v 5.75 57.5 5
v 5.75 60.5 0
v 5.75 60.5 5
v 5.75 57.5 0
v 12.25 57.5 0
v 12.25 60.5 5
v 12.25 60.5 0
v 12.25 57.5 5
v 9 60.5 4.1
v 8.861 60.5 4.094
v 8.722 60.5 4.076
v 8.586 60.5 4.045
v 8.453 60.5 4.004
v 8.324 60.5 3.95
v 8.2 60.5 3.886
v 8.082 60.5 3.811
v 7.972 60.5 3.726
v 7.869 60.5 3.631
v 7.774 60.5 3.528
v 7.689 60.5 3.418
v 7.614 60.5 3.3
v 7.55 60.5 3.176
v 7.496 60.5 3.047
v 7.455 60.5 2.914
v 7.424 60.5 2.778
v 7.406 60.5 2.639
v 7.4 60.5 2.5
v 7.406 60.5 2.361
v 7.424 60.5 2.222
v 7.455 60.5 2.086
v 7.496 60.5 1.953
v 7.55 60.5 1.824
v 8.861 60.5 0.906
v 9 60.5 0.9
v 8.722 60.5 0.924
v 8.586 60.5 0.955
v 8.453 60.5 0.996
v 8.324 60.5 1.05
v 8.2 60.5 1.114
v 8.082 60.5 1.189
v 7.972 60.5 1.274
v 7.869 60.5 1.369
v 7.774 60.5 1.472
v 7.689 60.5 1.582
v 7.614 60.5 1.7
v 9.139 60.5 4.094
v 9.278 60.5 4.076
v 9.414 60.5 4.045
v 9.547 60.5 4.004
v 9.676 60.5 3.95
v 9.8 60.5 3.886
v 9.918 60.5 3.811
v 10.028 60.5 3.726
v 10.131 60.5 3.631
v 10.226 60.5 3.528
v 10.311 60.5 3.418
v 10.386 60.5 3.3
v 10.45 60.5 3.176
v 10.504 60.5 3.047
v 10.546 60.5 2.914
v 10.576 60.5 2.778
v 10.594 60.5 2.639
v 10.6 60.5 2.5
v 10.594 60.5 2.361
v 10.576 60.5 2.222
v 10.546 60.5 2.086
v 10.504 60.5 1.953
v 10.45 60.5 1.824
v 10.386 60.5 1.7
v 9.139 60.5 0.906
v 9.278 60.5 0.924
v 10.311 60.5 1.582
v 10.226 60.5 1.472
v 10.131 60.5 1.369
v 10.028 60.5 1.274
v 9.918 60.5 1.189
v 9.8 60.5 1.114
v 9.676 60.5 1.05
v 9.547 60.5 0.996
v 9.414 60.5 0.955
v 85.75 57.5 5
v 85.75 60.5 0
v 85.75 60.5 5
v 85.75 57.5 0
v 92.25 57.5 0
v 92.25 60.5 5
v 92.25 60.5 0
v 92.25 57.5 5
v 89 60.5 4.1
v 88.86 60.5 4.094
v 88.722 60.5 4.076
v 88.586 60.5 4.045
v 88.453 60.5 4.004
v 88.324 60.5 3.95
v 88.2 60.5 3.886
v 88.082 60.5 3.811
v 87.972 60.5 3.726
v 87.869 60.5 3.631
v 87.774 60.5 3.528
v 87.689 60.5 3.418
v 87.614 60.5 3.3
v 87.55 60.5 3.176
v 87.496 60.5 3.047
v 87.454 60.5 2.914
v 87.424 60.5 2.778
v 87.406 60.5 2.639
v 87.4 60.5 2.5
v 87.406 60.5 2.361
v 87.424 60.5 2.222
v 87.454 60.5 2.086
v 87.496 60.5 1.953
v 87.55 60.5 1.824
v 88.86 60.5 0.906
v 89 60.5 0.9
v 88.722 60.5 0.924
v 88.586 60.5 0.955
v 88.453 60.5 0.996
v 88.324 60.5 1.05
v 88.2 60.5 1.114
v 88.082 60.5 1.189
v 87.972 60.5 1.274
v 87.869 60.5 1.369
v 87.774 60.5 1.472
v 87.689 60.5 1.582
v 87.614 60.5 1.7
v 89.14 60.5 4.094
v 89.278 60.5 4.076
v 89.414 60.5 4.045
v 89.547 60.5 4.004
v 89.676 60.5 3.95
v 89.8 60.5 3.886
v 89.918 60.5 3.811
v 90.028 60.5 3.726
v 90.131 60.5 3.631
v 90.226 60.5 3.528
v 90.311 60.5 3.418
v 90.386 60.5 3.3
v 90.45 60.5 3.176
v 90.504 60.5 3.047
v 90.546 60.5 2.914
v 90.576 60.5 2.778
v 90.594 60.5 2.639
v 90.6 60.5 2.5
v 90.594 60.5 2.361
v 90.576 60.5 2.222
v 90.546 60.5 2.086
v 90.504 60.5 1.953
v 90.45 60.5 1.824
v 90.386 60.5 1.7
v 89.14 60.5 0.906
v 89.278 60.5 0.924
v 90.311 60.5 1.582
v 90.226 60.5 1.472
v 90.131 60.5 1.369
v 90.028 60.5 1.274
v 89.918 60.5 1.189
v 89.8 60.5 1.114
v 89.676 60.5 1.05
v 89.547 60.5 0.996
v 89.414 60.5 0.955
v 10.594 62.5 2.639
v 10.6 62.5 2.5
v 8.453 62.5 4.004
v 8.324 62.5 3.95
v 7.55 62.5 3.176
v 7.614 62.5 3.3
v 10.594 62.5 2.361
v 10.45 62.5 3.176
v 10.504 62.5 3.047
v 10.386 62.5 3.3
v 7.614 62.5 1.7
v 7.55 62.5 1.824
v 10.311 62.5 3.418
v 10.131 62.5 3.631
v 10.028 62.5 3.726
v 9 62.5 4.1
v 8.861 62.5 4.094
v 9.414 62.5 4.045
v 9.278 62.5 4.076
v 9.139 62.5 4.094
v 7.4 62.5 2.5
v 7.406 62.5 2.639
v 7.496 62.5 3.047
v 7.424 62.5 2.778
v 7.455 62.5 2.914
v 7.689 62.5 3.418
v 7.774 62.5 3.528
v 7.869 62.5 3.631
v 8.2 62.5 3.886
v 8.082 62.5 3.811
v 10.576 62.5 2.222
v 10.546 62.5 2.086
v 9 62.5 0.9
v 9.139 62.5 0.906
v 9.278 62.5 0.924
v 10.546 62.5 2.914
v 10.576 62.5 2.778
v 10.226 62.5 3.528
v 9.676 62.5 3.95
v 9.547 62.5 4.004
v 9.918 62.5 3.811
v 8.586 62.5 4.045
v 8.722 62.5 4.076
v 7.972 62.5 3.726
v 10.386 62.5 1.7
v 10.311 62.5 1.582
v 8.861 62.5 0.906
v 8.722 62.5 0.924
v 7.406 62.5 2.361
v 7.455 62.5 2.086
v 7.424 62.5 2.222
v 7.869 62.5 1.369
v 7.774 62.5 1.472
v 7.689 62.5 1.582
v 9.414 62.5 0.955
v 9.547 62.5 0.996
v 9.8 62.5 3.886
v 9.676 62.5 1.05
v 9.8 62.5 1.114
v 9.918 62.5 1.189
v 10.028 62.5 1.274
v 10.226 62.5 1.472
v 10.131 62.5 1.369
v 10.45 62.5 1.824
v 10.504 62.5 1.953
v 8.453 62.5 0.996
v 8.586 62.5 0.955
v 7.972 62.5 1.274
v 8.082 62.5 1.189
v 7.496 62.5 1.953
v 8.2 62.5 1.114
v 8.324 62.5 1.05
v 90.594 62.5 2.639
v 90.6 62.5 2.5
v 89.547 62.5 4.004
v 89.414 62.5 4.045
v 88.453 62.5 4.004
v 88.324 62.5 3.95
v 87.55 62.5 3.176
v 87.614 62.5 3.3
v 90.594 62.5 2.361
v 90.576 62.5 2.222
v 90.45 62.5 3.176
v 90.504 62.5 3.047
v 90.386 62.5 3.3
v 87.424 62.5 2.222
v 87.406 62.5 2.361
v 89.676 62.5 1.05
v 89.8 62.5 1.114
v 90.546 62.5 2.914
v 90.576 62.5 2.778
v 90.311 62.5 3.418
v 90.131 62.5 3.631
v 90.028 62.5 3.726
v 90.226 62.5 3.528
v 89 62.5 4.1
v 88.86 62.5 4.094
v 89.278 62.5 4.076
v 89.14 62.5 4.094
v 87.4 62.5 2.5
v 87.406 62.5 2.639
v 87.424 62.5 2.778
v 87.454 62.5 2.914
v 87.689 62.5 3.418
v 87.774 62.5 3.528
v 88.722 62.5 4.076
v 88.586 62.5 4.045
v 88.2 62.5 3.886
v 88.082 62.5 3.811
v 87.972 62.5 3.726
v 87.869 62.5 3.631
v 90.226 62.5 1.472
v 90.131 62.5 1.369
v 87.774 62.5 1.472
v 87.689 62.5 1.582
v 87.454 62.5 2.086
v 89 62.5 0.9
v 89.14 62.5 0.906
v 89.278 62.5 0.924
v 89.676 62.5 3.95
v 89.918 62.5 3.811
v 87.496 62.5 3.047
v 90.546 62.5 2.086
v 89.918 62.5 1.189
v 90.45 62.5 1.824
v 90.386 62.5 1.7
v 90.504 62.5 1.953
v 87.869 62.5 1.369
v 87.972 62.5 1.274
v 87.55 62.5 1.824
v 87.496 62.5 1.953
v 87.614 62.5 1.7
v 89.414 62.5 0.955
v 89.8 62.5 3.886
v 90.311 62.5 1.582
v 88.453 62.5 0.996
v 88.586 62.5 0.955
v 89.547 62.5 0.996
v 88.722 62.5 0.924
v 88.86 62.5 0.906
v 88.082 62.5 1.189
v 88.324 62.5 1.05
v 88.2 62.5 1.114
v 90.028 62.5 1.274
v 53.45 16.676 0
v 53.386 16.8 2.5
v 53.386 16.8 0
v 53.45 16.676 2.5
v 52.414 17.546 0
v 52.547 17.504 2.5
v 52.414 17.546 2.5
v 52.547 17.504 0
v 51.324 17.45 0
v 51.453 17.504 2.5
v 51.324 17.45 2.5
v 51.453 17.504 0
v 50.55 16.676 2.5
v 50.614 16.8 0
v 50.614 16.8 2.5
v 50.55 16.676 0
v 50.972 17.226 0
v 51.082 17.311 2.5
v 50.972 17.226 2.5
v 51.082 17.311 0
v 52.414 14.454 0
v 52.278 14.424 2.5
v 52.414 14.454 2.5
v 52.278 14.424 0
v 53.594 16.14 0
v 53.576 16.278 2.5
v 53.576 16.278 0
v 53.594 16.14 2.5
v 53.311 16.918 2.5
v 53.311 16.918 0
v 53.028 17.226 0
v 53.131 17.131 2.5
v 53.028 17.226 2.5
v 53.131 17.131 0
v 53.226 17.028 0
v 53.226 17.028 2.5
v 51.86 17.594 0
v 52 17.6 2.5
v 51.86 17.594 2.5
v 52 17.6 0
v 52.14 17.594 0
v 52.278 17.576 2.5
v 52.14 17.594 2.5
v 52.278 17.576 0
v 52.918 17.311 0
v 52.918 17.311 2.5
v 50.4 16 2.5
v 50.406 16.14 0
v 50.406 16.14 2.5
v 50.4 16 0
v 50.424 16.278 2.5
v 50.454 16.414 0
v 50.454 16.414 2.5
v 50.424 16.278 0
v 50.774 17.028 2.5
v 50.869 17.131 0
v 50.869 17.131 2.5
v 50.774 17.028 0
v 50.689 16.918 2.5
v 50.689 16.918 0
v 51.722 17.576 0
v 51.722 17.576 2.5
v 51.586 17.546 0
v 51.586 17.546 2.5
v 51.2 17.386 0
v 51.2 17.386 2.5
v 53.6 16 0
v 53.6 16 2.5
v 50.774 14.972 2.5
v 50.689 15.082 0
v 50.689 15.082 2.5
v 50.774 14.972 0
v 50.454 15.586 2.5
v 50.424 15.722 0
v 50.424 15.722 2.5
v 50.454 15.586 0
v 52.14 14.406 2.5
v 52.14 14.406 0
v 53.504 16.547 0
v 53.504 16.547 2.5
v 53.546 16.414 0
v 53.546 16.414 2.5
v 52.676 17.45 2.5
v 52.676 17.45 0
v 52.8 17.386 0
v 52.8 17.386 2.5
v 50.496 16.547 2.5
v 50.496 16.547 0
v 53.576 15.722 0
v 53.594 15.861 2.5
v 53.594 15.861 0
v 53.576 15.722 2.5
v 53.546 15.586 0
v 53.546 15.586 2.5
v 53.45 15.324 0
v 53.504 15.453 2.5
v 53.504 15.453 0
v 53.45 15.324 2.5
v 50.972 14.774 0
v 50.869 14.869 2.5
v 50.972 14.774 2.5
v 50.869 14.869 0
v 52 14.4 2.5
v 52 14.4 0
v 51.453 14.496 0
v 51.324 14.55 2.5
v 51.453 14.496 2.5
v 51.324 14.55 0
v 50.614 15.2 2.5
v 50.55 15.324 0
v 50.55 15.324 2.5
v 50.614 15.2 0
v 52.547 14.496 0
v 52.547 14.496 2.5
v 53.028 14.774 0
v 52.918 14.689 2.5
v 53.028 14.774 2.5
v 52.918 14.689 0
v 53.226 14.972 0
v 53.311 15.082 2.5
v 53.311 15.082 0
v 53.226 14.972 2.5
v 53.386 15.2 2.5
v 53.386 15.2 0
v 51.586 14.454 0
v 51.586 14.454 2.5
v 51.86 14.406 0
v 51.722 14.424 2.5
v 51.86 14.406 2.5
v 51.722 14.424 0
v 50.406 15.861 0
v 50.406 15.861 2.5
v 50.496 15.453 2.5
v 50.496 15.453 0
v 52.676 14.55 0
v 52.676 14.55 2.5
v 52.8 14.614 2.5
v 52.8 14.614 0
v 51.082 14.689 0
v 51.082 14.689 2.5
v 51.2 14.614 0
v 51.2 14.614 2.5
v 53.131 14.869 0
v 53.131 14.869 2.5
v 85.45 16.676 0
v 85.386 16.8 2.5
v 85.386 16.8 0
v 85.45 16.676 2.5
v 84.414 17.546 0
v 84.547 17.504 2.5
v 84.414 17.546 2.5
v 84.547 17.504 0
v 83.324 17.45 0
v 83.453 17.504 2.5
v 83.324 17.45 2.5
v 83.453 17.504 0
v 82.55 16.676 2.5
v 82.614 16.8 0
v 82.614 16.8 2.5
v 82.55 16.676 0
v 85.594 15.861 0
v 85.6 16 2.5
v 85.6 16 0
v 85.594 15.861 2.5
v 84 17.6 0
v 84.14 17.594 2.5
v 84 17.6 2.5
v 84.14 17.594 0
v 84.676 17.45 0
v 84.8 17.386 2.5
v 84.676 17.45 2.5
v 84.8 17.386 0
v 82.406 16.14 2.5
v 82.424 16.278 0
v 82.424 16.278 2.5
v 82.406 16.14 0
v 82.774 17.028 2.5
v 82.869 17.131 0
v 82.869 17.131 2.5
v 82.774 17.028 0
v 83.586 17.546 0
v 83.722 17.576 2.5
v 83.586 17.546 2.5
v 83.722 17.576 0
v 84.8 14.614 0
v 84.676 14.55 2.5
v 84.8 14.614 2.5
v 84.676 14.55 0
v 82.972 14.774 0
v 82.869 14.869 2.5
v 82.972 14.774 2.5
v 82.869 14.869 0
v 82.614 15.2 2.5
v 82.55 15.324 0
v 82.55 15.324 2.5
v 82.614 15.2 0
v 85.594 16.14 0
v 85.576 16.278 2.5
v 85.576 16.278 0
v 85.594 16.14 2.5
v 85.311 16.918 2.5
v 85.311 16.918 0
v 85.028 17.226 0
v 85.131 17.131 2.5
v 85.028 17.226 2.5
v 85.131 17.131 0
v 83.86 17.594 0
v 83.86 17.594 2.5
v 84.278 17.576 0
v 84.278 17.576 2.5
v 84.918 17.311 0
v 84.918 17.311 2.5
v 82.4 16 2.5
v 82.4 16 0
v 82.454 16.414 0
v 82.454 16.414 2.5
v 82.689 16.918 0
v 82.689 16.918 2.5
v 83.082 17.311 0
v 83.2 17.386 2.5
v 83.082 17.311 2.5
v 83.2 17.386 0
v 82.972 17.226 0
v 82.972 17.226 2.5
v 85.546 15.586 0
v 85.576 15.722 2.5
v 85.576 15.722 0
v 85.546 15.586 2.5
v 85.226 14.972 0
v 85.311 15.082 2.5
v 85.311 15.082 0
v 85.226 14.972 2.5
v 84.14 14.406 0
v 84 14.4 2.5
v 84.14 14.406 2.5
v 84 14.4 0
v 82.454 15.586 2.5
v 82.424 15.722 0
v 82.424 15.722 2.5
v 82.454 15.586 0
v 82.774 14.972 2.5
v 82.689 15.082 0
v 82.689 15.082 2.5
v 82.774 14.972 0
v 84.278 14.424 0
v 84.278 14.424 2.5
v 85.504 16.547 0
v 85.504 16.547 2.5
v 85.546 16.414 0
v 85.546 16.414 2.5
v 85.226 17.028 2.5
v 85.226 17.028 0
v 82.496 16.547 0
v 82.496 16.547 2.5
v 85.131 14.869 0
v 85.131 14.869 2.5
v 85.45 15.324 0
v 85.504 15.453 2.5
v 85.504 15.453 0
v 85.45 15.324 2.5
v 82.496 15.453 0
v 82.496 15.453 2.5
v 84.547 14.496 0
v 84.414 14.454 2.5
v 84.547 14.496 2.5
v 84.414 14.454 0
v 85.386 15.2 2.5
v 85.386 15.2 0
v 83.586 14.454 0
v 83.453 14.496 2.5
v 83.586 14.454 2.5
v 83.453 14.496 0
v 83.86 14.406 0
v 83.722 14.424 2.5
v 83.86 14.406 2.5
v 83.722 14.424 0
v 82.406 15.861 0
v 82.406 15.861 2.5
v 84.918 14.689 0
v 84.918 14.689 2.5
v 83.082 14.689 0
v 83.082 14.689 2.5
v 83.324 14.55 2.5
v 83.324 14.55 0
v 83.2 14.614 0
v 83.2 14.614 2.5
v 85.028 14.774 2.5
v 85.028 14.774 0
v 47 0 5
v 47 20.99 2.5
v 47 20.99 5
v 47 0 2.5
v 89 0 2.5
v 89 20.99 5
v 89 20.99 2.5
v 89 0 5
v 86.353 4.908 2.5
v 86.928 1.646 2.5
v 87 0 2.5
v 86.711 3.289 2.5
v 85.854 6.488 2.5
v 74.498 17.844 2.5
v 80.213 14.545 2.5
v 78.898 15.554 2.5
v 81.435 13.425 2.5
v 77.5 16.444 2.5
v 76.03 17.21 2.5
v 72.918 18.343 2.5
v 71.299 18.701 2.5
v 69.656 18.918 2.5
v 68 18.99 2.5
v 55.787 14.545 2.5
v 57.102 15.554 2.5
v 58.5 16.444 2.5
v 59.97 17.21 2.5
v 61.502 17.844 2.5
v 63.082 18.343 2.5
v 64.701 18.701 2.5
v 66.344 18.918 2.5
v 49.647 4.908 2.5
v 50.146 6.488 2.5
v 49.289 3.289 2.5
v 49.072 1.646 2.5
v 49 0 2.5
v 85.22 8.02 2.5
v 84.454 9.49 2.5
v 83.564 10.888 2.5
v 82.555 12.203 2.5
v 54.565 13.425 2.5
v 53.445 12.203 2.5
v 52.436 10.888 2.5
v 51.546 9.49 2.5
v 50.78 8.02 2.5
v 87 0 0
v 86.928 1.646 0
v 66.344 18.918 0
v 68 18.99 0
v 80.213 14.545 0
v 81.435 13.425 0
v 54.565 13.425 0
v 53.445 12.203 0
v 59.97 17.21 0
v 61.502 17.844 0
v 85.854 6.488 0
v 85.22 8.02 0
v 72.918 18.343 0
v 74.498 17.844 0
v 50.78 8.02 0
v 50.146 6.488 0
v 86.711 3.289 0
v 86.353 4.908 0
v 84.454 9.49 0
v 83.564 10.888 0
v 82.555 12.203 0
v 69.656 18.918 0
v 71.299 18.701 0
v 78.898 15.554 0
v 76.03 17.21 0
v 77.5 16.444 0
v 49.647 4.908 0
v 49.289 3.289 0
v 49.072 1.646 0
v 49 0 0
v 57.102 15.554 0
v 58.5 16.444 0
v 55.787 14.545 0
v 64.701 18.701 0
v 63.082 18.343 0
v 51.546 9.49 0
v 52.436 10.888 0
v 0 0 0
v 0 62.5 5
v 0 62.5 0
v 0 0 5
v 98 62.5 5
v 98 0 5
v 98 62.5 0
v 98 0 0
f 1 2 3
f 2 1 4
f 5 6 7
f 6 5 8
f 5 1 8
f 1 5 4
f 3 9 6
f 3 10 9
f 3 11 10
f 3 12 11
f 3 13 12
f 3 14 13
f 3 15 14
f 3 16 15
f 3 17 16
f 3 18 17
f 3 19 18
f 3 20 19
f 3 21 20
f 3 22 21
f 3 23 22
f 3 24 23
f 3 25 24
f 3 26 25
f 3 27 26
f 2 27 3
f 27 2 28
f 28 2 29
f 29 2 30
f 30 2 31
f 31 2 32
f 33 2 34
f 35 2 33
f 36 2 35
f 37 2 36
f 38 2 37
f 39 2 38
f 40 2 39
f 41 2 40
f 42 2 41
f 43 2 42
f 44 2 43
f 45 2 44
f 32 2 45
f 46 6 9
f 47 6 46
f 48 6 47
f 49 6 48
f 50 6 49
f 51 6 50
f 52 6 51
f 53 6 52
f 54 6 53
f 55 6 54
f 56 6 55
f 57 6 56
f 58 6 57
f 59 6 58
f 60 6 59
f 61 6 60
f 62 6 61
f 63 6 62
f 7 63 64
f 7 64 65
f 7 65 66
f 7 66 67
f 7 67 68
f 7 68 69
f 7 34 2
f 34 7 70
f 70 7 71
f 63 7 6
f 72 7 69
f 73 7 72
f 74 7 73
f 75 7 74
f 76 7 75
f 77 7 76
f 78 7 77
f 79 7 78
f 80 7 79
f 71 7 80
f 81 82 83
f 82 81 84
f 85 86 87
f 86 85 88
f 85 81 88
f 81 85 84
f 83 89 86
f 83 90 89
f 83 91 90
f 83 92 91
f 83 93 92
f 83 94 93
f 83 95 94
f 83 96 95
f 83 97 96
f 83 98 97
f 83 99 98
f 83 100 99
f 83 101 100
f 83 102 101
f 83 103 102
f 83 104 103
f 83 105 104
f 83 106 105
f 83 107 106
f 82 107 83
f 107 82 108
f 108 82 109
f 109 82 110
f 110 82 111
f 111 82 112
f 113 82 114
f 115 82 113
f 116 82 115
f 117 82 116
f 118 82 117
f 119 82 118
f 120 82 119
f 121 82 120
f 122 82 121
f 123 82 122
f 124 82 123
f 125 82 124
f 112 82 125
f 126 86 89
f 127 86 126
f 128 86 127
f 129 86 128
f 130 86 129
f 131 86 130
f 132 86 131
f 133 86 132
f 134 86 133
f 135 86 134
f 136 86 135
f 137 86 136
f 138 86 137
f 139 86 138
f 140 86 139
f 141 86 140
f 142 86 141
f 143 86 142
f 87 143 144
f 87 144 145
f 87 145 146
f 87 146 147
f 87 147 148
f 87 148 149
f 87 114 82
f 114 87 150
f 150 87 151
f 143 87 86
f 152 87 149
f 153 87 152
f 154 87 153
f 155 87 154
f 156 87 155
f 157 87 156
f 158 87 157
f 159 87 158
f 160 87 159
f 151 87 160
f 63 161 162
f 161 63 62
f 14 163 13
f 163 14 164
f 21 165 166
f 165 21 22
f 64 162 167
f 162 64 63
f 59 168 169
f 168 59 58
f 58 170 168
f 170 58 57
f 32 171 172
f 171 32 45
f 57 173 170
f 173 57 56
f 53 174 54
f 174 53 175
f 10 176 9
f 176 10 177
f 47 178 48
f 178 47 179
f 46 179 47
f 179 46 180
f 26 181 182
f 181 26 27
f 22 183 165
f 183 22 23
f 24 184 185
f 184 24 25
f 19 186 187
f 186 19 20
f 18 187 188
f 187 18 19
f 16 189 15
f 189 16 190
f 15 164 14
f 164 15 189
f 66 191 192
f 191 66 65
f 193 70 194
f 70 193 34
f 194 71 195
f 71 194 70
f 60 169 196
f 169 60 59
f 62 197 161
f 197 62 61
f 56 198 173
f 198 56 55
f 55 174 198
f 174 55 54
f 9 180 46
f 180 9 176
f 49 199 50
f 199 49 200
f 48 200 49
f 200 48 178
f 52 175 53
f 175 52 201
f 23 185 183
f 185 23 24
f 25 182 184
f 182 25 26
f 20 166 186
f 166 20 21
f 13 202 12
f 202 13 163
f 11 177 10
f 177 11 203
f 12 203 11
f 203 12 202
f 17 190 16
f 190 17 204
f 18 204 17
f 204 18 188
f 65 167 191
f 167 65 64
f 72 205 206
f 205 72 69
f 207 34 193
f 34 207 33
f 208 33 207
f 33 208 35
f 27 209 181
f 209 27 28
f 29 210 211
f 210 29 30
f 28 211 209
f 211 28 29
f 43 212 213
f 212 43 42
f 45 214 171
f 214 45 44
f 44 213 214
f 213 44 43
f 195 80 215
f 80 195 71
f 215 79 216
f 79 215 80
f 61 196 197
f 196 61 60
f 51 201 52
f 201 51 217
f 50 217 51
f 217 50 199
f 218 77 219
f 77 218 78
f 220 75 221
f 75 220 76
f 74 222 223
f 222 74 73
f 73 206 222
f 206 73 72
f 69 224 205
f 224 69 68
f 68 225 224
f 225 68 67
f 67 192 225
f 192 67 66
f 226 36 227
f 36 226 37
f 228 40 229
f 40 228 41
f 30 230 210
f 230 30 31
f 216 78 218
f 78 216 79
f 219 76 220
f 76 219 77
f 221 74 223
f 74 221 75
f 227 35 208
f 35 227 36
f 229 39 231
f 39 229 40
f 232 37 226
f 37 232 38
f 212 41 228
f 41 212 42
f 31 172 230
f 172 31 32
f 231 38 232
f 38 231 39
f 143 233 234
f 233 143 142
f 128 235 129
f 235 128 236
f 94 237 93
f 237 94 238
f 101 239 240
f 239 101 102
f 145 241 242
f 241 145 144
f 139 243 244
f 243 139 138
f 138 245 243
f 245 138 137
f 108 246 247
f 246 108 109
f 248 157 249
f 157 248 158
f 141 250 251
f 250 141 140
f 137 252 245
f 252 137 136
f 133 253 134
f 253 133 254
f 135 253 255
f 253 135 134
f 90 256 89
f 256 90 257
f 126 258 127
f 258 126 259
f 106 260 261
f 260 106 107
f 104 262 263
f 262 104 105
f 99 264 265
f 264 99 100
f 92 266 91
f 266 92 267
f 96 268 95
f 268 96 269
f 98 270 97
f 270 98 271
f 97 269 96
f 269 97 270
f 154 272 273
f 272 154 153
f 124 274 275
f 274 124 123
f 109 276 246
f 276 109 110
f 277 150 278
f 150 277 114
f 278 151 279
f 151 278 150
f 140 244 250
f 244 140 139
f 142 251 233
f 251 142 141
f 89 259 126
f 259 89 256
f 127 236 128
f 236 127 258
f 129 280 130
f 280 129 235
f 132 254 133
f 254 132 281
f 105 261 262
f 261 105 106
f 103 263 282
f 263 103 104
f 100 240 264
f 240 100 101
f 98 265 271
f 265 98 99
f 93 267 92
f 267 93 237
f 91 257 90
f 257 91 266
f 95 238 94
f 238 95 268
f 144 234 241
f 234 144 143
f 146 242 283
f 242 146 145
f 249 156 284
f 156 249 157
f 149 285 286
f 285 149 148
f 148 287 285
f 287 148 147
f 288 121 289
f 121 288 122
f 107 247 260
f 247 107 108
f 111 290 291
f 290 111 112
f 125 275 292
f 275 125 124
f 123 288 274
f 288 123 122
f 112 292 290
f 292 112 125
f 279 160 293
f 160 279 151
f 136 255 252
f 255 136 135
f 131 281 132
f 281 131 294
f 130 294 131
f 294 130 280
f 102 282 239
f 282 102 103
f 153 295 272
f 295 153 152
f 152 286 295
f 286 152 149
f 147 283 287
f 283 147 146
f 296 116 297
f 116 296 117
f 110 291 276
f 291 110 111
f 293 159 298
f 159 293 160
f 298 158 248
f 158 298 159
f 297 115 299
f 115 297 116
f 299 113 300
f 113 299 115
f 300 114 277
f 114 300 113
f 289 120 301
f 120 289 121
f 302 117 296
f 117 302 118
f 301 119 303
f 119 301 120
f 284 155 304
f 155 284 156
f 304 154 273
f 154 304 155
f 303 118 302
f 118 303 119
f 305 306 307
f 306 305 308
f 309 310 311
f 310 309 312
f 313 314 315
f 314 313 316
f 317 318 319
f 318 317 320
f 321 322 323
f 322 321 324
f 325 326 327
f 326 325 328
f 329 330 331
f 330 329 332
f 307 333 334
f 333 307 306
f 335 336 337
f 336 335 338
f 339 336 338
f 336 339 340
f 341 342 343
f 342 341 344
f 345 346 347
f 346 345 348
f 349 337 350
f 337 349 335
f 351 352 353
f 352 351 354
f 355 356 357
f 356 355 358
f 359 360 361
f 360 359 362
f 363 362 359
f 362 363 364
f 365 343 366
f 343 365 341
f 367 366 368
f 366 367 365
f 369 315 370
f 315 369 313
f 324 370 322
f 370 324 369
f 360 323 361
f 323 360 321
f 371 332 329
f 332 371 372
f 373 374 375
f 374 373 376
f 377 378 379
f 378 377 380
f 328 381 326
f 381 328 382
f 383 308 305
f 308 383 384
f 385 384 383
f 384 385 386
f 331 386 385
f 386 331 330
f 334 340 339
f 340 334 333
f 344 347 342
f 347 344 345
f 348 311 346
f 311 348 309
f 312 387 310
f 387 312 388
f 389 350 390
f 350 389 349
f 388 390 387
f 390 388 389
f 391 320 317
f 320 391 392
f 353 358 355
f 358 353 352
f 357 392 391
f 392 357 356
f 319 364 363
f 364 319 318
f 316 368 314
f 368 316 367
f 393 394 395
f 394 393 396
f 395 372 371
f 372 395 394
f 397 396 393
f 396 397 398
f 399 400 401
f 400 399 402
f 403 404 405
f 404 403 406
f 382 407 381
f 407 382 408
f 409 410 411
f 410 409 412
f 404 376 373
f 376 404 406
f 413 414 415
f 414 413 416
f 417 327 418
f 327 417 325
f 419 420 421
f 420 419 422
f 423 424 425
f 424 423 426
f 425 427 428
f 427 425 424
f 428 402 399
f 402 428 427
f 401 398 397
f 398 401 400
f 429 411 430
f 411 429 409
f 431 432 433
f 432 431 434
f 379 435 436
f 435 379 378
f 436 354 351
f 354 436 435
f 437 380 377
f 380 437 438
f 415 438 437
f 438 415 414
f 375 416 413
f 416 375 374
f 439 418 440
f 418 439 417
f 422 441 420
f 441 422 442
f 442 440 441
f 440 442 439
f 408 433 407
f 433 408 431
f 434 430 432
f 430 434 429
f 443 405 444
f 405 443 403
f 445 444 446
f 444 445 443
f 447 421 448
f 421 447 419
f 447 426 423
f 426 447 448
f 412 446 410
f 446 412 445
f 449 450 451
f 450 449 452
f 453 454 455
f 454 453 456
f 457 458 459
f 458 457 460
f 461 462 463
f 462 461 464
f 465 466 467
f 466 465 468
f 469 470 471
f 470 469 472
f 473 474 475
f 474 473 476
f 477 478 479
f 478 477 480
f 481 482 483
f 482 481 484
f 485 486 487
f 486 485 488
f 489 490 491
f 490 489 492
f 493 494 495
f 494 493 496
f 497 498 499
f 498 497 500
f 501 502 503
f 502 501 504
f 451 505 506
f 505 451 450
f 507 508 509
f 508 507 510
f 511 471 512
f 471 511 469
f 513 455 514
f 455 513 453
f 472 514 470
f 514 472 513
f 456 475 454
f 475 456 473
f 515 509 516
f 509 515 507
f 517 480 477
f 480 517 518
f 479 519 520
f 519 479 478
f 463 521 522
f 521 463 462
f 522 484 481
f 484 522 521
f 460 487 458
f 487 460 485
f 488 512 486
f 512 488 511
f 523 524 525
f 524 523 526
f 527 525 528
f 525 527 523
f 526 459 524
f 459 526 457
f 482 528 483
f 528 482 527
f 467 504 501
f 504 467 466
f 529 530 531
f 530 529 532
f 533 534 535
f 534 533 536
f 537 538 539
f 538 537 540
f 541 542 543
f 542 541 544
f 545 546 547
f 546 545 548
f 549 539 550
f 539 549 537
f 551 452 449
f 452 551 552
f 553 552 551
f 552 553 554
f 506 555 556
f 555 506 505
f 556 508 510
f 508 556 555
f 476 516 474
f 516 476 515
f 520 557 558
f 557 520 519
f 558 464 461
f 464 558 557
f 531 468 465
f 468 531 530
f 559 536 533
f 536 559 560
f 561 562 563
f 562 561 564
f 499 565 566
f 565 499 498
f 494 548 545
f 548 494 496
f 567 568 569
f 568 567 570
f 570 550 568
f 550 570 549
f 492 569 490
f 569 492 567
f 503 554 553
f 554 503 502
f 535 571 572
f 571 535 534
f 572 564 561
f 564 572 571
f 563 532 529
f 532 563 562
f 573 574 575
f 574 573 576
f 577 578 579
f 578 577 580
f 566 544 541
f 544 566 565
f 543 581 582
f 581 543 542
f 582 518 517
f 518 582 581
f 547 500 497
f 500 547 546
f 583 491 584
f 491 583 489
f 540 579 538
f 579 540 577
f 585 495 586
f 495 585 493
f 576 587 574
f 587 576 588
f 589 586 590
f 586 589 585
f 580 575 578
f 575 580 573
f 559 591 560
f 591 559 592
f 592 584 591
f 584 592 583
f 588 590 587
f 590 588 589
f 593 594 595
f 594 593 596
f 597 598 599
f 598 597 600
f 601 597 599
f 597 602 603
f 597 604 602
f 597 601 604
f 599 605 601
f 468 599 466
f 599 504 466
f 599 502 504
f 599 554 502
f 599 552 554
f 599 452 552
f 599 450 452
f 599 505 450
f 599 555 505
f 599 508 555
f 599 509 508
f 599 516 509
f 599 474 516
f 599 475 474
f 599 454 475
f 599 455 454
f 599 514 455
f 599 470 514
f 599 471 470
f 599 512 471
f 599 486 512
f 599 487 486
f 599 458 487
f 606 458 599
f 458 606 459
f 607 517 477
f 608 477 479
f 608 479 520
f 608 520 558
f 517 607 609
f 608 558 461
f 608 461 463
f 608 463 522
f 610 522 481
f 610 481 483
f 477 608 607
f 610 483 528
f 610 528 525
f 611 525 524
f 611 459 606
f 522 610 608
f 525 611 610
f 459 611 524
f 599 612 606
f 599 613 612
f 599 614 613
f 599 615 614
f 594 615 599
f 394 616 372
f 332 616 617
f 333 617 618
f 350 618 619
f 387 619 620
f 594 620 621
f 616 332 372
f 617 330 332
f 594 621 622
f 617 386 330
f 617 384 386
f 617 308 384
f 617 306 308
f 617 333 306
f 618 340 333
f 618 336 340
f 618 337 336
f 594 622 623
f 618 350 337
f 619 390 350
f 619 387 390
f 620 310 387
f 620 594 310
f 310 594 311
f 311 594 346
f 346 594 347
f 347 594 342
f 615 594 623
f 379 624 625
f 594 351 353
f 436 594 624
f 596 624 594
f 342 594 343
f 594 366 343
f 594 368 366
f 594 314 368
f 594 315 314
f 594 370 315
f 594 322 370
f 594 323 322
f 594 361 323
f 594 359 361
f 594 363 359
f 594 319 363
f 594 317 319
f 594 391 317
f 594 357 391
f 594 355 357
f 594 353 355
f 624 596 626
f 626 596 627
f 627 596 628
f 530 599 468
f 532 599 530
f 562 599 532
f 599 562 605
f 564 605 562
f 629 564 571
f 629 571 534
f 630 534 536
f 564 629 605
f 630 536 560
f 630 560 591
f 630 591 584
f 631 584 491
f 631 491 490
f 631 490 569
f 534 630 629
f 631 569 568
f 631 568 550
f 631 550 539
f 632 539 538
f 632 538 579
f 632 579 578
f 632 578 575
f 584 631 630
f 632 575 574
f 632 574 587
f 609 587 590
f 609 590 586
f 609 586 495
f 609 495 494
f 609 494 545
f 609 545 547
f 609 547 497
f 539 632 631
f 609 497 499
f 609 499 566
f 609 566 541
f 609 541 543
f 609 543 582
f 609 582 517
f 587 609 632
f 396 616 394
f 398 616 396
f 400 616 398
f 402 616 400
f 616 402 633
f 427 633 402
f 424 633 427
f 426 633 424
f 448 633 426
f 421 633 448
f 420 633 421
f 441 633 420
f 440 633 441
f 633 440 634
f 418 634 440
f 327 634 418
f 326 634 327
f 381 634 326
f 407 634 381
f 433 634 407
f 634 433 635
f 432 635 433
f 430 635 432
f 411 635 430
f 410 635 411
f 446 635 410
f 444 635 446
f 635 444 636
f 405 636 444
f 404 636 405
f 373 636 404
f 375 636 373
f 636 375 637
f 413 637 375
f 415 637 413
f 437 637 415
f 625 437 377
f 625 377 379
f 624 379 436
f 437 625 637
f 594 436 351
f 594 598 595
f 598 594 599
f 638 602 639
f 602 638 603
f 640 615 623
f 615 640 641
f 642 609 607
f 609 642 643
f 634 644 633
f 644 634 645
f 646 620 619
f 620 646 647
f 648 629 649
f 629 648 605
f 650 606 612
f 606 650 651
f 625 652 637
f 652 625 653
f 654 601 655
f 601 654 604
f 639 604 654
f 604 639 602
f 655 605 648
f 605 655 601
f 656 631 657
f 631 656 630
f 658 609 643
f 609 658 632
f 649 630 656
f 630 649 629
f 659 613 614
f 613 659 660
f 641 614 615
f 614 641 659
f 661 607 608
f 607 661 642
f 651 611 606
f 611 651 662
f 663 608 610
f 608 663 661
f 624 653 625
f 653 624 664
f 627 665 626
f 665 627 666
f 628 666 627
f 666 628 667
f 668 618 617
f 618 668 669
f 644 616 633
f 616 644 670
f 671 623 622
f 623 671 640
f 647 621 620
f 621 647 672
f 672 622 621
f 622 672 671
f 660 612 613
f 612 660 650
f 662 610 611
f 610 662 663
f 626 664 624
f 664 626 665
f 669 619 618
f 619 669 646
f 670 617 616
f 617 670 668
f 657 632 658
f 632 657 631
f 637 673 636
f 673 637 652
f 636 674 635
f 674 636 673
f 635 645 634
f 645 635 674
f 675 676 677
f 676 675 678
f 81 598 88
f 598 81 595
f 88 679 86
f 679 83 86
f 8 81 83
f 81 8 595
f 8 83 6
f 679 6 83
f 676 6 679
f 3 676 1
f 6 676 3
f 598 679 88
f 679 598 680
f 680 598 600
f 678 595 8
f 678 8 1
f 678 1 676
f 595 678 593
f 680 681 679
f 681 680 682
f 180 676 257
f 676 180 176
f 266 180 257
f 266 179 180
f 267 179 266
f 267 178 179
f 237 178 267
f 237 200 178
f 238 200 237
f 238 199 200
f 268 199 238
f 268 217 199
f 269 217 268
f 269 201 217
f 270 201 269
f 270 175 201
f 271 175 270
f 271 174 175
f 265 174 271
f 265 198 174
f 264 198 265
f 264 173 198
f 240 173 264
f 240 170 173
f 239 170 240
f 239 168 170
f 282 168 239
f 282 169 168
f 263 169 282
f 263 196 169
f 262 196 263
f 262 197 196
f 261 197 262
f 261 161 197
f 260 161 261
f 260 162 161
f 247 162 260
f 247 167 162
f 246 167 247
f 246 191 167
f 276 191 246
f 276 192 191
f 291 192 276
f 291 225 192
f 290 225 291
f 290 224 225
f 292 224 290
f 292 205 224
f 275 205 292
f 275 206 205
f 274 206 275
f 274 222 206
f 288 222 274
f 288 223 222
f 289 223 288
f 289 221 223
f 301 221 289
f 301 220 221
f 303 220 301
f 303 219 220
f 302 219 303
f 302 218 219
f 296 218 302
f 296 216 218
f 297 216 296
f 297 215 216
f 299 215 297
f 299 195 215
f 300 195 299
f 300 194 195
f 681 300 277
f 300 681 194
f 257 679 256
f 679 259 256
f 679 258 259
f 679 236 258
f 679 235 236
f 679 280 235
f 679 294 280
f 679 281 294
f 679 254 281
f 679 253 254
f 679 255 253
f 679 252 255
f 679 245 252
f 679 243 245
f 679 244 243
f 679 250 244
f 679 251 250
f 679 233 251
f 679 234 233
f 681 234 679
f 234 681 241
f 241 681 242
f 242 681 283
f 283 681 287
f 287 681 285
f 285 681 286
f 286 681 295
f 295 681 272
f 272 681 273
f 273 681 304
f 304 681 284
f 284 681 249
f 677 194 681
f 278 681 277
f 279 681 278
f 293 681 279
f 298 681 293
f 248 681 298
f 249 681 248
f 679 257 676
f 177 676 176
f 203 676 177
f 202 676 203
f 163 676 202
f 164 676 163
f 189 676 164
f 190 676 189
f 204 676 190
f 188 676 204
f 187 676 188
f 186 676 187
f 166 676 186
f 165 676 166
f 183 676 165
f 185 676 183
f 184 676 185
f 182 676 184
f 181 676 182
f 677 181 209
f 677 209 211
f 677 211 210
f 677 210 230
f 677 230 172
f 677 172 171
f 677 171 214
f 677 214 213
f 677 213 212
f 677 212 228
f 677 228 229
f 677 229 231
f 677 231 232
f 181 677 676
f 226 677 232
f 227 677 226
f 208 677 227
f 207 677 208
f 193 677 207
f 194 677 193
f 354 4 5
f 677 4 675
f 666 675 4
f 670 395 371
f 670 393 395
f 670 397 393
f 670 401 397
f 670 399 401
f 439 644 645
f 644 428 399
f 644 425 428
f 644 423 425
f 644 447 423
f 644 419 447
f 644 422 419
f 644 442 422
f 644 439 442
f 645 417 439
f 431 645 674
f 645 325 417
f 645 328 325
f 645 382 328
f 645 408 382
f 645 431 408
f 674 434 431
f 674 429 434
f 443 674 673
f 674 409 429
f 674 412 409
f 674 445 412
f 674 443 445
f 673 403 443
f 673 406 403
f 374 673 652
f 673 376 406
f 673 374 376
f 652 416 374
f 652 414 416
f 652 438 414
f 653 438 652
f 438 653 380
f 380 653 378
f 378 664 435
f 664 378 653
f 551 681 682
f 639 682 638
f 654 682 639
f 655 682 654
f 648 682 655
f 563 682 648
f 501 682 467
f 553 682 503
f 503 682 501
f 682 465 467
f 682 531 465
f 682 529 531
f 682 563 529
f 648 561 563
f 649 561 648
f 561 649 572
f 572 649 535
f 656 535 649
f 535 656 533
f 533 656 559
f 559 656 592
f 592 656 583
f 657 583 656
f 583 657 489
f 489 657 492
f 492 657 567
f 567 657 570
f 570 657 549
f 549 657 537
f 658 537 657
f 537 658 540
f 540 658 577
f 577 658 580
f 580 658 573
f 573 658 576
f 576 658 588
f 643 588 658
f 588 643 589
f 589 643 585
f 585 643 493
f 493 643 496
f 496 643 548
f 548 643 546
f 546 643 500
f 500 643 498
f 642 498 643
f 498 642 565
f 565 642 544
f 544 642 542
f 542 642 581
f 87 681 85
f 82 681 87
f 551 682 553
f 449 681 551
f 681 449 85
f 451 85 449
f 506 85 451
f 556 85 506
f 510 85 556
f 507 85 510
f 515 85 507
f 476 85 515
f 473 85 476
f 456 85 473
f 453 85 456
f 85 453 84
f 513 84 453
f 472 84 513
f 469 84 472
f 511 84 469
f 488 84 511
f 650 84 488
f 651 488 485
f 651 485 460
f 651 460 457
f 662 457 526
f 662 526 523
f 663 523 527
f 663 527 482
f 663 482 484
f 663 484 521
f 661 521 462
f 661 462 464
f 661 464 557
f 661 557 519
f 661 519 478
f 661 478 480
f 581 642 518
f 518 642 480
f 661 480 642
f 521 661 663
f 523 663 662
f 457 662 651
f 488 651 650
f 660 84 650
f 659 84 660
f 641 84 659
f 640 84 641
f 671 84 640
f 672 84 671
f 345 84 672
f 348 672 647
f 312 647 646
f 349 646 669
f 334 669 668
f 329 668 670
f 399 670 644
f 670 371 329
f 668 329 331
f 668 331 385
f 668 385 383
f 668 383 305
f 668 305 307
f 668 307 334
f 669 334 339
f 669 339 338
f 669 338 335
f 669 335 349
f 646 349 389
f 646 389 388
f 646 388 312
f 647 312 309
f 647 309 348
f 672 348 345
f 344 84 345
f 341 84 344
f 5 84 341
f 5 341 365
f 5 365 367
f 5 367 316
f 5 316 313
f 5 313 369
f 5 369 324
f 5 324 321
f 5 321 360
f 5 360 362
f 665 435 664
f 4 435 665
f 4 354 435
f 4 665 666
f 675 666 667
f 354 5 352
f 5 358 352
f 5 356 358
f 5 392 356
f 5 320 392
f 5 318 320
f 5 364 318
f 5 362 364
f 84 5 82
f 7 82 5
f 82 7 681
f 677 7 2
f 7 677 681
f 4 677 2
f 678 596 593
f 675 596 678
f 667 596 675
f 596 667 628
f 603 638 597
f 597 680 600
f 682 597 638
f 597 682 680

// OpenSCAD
difference(){

cube([98, 62.5, 5]);

{   
    translate([38,0,0]){
    
    translate([30-42/2, -0.01, 2.5])
        cube([42, 42/2, 2.51]);
    translate([30, -0.01, 2.5])
        cylinder(h=5.01, r=19, $fa=5, $fs=0.1, center=true);
    
    translate([14, 16, 2.5]){
        cylinder(h=5.01, r=1.6, $fa=5, $fs=0.1, center=true);
        translate([32, 0, 0])
            cylinder(h=5.01, r=1.6, $fa=5, $fs=0.1, center=true);}}
            
            
    translate([5.75, 57.5, -0.01]){
            cube([6.5, 3, 5.02]);
            translate([80, 0, 0])
                cube([6.5, 3, 5.02]);}
                
    translate([9, 61.5, 2.5]){
            rotate([90,0,0])
                cylinder(h=2.01, r=1.6, $fa=5, $fs=0.1, center=true);
        
            translate([80, 0, 0])
                rotate([90,0,0])
                    cylinder(h=2.01, r=1.6, $fa=5, $fs=0.1, center=true);
    }
    

}    
    
    
    
    
}
